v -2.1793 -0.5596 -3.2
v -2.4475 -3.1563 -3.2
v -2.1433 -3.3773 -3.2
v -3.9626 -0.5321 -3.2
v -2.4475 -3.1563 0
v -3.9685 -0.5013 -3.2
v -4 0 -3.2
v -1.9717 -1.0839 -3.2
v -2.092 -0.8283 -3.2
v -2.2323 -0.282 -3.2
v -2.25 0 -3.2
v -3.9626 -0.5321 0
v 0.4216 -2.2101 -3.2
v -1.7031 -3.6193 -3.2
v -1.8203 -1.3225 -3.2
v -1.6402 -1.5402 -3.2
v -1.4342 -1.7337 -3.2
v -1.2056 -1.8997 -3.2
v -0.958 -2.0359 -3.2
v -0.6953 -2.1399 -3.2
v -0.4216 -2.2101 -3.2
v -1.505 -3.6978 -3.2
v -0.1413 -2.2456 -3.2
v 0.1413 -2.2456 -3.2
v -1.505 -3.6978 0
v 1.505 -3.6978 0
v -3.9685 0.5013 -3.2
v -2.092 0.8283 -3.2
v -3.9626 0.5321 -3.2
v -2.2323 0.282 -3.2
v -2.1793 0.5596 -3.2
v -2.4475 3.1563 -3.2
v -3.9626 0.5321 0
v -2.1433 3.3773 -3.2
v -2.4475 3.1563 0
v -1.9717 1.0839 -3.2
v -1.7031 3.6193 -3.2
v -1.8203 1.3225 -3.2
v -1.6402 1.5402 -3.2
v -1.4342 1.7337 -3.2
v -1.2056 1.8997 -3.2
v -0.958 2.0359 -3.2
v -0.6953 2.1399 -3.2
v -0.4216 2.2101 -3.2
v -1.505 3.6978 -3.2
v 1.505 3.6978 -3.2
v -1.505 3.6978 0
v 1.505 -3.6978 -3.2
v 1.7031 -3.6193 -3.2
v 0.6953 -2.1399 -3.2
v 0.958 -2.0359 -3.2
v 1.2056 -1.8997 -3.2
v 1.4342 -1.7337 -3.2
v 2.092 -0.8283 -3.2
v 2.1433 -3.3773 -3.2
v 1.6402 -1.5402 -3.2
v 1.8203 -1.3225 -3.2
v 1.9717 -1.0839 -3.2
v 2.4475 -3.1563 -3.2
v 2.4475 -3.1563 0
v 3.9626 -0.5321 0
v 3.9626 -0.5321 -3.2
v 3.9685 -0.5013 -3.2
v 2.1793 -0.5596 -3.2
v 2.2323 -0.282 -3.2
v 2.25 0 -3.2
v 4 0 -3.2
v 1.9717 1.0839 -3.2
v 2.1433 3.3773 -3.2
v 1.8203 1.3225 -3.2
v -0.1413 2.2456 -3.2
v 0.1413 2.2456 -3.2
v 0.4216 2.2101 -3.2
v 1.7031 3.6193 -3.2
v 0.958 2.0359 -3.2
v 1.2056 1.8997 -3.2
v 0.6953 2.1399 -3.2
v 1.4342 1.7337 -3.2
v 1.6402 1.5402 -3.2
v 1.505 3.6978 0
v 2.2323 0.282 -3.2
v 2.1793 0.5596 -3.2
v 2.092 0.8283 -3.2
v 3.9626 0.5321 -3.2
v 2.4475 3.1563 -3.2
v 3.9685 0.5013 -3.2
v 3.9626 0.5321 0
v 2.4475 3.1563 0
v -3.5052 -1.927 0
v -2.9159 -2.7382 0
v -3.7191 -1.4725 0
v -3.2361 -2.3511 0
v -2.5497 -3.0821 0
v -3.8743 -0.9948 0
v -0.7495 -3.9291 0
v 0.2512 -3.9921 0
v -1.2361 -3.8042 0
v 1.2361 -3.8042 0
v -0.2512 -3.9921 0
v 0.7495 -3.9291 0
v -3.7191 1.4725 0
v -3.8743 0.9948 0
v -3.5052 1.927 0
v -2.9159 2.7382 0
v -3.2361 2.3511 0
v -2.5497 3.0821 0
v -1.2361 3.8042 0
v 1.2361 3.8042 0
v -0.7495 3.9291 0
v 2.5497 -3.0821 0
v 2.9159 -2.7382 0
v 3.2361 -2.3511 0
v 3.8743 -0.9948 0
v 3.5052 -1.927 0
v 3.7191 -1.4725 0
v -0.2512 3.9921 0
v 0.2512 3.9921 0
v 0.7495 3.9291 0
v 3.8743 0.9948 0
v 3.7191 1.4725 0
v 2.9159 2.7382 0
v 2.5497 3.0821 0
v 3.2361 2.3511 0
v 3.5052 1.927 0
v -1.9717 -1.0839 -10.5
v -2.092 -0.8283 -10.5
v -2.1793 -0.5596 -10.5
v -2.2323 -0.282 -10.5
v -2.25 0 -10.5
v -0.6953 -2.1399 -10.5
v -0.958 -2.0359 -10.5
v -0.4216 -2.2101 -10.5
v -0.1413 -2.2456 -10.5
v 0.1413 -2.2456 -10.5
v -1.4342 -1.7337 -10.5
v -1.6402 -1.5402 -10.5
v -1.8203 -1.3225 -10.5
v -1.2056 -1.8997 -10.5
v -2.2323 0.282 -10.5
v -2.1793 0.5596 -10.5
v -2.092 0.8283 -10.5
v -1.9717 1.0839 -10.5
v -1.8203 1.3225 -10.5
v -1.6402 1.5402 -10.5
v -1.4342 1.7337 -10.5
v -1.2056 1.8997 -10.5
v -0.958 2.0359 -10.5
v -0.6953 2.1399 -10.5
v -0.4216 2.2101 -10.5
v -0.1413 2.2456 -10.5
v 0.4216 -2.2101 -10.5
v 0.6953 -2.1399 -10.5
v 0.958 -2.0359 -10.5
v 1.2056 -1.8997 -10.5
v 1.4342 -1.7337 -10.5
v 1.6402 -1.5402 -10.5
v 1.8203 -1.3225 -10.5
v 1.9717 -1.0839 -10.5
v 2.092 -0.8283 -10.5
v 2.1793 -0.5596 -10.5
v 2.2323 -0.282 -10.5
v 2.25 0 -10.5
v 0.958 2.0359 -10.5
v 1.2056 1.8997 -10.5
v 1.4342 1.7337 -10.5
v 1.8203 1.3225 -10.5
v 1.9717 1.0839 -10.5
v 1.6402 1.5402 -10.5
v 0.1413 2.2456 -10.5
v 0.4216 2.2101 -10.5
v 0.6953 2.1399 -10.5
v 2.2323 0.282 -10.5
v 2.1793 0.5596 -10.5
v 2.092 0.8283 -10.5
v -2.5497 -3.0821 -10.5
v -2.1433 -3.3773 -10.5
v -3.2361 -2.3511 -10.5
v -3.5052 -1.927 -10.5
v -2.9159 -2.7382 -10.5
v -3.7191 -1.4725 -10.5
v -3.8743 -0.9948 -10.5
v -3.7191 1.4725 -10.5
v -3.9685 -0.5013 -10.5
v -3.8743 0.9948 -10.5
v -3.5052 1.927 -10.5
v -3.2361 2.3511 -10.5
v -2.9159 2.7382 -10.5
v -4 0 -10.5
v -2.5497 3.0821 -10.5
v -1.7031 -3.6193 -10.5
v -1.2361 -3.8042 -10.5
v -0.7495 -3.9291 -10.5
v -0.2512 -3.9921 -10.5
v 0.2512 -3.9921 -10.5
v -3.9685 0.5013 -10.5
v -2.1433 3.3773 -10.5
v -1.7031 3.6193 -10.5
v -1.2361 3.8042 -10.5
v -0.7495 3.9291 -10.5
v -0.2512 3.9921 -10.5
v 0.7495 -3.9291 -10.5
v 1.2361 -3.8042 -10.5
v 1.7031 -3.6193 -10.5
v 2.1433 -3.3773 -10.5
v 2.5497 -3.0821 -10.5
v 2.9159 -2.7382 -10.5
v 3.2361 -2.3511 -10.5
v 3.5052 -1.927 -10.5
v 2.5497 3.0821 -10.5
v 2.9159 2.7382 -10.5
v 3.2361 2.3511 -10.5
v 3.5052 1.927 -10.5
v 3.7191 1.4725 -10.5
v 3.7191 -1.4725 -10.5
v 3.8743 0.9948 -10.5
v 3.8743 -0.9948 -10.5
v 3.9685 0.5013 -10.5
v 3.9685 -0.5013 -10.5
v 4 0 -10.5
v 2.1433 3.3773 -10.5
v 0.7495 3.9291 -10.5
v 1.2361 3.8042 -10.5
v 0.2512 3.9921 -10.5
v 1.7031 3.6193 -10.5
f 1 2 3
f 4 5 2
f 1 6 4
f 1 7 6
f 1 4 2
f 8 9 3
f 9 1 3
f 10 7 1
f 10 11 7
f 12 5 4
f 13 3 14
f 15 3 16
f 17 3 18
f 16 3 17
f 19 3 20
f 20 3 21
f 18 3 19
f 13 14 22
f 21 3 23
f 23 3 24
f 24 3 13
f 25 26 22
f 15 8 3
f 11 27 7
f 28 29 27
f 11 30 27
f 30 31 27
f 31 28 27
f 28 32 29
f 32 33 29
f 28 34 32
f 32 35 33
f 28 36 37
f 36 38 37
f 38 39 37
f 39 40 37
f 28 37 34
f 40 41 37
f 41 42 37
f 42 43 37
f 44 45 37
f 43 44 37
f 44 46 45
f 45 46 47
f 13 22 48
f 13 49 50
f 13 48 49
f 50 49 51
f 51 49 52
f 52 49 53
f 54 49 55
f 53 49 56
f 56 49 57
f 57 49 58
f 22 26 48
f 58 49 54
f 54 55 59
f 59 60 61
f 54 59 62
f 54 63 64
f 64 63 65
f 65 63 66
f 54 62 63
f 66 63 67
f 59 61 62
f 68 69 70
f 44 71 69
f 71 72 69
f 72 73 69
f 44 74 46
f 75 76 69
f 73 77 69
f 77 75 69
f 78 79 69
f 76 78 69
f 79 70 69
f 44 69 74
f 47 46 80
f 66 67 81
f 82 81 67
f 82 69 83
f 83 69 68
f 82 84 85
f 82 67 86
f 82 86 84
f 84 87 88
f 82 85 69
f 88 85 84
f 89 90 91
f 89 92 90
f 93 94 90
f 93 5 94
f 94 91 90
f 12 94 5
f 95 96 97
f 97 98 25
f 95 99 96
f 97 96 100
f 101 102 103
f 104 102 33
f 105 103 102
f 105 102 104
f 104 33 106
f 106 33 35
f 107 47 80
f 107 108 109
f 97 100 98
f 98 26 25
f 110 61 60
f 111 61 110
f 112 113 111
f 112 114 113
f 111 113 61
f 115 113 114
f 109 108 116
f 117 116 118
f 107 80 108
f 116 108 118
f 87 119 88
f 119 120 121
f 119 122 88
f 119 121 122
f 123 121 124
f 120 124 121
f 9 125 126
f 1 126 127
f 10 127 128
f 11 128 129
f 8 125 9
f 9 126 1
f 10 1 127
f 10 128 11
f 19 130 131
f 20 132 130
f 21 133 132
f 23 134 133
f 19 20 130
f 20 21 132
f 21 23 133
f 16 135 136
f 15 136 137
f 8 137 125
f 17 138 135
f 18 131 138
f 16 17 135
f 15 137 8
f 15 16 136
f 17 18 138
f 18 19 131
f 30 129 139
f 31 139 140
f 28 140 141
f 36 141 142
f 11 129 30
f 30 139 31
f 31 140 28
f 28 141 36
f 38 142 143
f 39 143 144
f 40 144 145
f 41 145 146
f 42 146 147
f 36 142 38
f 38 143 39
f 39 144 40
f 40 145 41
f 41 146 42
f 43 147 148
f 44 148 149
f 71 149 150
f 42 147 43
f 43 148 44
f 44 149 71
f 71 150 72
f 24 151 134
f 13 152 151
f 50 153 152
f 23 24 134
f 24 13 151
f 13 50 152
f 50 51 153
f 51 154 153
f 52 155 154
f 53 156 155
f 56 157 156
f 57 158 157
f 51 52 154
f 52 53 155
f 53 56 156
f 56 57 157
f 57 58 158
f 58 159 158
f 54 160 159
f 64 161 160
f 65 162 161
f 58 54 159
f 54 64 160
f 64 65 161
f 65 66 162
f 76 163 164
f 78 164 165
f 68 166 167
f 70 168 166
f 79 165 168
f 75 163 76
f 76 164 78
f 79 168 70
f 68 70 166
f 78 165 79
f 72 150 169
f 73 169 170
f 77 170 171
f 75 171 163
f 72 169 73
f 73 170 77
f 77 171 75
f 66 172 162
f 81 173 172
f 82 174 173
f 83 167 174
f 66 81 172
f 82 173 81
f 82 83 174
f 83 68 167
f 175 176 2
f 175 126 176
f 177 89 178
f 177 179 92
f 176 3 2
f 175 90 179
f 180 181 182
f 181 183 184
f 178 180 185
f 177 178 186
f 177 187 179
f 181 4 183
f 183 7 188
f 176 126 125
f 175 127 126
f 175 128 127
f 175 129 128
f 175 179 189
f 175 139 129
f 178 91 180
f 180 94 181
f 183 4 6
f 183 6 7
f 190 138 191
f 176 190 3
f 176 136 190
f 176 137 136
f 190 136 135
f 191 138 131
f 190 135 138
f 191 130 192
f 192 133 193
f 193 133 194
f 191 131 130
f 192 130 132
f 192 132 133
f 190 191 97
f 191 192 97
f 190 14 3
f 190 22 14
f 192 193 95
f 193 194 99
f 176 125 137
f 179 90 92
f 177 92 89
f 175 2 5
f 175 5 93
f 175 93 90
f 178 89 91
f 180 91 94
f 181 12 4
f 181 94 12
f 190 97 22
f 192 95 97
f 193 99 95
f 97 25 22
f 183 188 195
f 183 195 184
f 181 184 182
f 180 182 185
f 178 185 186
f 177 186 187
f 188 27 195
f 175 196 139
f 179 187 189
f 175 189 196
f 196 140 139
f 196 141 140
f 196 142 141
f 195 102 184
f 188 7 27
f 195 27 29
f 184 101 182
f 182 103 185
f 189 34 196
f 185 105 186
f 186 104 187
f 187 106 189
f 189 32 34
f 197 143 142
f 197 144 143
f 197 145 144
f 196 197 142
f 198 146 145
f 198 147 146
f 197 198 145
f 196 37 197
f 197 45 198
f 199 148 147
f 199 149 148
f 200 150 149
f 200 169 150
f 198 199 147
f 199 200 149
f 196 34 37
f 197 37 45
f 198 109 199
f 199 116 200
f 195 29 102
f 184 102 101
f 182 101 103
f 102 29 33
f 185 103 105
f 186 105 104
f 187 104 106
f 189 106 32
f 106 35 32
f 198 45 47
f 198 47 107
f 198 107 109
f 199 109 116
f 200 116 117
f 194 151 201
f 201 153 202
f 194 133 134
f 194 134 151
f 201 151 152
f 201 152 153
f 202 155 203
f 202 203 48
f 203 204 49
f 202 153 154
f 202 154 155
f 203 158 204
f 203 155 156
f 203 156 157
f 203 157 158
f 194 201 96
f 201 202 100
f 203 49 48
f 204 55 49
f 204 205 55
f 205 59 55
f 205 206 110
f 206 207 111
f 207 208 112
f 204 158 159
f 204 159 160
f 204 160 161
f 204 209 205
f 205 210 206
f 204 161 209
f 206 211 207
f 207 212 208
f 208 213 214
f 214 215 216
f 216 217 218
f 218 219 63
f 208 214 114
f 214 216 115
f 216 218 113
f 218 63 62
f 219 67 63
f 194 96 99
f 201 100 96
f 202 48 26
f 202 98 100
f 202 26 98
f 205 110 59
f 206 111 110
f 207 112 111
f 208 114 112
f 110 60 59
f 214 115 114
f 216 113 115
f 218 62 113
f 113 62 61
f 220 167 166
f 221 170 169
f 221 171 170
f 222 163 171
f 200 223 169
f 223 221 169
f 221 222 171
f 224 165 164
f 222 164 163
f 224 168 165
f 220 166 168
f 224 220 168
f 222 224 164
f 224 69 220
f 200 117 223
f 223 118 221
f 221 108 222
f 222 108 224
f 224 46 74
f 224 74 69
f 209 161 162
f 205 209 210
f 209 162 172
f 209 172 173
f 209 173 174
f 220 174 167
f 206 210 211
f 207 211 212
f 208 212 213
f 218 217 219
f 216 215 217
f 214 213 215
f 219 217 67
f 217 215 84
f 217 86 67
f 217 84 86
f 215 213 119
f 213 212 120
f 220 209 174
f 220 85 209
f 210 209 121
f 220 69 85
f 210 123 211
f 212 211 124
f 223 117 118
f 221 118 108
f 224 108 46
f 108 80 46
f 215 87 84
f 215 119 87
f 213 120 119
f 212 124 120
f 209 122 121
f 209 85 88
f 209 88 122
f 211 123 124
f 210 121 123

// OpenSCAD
$fn = 50;

difference() {
	union() {
		translate(v = [0, 0, -10.5]) {
			cylinder(h = 10.5, r = 4.0);
		}
	}
	union() {
		translate(v = [0, 0, 0]) {
			rotate(a = [0, 0, 0]) {
				difference() {
					union() {
						translate(v = [0, 0, -3.2]) {
							linear_extrude(height = 3.2) {
								polygon(points = [[4.2698, 0.0], [2.1349000000000005, 3.697755269078796], [-2.134899999999999, 3.6977552690787965], [-4.2698, 5.228996902999369e-16], [-2.134900000000002, -3.6977552690787956], [2.1348999999999974, -3.697755269078798]]);
							}
						}
					}
					union();
				}
			}
		}
		#translate(v = [0, 0, -100.0]) {
			cylinder(h = 200, r = 2.25);
		}
	}
}
